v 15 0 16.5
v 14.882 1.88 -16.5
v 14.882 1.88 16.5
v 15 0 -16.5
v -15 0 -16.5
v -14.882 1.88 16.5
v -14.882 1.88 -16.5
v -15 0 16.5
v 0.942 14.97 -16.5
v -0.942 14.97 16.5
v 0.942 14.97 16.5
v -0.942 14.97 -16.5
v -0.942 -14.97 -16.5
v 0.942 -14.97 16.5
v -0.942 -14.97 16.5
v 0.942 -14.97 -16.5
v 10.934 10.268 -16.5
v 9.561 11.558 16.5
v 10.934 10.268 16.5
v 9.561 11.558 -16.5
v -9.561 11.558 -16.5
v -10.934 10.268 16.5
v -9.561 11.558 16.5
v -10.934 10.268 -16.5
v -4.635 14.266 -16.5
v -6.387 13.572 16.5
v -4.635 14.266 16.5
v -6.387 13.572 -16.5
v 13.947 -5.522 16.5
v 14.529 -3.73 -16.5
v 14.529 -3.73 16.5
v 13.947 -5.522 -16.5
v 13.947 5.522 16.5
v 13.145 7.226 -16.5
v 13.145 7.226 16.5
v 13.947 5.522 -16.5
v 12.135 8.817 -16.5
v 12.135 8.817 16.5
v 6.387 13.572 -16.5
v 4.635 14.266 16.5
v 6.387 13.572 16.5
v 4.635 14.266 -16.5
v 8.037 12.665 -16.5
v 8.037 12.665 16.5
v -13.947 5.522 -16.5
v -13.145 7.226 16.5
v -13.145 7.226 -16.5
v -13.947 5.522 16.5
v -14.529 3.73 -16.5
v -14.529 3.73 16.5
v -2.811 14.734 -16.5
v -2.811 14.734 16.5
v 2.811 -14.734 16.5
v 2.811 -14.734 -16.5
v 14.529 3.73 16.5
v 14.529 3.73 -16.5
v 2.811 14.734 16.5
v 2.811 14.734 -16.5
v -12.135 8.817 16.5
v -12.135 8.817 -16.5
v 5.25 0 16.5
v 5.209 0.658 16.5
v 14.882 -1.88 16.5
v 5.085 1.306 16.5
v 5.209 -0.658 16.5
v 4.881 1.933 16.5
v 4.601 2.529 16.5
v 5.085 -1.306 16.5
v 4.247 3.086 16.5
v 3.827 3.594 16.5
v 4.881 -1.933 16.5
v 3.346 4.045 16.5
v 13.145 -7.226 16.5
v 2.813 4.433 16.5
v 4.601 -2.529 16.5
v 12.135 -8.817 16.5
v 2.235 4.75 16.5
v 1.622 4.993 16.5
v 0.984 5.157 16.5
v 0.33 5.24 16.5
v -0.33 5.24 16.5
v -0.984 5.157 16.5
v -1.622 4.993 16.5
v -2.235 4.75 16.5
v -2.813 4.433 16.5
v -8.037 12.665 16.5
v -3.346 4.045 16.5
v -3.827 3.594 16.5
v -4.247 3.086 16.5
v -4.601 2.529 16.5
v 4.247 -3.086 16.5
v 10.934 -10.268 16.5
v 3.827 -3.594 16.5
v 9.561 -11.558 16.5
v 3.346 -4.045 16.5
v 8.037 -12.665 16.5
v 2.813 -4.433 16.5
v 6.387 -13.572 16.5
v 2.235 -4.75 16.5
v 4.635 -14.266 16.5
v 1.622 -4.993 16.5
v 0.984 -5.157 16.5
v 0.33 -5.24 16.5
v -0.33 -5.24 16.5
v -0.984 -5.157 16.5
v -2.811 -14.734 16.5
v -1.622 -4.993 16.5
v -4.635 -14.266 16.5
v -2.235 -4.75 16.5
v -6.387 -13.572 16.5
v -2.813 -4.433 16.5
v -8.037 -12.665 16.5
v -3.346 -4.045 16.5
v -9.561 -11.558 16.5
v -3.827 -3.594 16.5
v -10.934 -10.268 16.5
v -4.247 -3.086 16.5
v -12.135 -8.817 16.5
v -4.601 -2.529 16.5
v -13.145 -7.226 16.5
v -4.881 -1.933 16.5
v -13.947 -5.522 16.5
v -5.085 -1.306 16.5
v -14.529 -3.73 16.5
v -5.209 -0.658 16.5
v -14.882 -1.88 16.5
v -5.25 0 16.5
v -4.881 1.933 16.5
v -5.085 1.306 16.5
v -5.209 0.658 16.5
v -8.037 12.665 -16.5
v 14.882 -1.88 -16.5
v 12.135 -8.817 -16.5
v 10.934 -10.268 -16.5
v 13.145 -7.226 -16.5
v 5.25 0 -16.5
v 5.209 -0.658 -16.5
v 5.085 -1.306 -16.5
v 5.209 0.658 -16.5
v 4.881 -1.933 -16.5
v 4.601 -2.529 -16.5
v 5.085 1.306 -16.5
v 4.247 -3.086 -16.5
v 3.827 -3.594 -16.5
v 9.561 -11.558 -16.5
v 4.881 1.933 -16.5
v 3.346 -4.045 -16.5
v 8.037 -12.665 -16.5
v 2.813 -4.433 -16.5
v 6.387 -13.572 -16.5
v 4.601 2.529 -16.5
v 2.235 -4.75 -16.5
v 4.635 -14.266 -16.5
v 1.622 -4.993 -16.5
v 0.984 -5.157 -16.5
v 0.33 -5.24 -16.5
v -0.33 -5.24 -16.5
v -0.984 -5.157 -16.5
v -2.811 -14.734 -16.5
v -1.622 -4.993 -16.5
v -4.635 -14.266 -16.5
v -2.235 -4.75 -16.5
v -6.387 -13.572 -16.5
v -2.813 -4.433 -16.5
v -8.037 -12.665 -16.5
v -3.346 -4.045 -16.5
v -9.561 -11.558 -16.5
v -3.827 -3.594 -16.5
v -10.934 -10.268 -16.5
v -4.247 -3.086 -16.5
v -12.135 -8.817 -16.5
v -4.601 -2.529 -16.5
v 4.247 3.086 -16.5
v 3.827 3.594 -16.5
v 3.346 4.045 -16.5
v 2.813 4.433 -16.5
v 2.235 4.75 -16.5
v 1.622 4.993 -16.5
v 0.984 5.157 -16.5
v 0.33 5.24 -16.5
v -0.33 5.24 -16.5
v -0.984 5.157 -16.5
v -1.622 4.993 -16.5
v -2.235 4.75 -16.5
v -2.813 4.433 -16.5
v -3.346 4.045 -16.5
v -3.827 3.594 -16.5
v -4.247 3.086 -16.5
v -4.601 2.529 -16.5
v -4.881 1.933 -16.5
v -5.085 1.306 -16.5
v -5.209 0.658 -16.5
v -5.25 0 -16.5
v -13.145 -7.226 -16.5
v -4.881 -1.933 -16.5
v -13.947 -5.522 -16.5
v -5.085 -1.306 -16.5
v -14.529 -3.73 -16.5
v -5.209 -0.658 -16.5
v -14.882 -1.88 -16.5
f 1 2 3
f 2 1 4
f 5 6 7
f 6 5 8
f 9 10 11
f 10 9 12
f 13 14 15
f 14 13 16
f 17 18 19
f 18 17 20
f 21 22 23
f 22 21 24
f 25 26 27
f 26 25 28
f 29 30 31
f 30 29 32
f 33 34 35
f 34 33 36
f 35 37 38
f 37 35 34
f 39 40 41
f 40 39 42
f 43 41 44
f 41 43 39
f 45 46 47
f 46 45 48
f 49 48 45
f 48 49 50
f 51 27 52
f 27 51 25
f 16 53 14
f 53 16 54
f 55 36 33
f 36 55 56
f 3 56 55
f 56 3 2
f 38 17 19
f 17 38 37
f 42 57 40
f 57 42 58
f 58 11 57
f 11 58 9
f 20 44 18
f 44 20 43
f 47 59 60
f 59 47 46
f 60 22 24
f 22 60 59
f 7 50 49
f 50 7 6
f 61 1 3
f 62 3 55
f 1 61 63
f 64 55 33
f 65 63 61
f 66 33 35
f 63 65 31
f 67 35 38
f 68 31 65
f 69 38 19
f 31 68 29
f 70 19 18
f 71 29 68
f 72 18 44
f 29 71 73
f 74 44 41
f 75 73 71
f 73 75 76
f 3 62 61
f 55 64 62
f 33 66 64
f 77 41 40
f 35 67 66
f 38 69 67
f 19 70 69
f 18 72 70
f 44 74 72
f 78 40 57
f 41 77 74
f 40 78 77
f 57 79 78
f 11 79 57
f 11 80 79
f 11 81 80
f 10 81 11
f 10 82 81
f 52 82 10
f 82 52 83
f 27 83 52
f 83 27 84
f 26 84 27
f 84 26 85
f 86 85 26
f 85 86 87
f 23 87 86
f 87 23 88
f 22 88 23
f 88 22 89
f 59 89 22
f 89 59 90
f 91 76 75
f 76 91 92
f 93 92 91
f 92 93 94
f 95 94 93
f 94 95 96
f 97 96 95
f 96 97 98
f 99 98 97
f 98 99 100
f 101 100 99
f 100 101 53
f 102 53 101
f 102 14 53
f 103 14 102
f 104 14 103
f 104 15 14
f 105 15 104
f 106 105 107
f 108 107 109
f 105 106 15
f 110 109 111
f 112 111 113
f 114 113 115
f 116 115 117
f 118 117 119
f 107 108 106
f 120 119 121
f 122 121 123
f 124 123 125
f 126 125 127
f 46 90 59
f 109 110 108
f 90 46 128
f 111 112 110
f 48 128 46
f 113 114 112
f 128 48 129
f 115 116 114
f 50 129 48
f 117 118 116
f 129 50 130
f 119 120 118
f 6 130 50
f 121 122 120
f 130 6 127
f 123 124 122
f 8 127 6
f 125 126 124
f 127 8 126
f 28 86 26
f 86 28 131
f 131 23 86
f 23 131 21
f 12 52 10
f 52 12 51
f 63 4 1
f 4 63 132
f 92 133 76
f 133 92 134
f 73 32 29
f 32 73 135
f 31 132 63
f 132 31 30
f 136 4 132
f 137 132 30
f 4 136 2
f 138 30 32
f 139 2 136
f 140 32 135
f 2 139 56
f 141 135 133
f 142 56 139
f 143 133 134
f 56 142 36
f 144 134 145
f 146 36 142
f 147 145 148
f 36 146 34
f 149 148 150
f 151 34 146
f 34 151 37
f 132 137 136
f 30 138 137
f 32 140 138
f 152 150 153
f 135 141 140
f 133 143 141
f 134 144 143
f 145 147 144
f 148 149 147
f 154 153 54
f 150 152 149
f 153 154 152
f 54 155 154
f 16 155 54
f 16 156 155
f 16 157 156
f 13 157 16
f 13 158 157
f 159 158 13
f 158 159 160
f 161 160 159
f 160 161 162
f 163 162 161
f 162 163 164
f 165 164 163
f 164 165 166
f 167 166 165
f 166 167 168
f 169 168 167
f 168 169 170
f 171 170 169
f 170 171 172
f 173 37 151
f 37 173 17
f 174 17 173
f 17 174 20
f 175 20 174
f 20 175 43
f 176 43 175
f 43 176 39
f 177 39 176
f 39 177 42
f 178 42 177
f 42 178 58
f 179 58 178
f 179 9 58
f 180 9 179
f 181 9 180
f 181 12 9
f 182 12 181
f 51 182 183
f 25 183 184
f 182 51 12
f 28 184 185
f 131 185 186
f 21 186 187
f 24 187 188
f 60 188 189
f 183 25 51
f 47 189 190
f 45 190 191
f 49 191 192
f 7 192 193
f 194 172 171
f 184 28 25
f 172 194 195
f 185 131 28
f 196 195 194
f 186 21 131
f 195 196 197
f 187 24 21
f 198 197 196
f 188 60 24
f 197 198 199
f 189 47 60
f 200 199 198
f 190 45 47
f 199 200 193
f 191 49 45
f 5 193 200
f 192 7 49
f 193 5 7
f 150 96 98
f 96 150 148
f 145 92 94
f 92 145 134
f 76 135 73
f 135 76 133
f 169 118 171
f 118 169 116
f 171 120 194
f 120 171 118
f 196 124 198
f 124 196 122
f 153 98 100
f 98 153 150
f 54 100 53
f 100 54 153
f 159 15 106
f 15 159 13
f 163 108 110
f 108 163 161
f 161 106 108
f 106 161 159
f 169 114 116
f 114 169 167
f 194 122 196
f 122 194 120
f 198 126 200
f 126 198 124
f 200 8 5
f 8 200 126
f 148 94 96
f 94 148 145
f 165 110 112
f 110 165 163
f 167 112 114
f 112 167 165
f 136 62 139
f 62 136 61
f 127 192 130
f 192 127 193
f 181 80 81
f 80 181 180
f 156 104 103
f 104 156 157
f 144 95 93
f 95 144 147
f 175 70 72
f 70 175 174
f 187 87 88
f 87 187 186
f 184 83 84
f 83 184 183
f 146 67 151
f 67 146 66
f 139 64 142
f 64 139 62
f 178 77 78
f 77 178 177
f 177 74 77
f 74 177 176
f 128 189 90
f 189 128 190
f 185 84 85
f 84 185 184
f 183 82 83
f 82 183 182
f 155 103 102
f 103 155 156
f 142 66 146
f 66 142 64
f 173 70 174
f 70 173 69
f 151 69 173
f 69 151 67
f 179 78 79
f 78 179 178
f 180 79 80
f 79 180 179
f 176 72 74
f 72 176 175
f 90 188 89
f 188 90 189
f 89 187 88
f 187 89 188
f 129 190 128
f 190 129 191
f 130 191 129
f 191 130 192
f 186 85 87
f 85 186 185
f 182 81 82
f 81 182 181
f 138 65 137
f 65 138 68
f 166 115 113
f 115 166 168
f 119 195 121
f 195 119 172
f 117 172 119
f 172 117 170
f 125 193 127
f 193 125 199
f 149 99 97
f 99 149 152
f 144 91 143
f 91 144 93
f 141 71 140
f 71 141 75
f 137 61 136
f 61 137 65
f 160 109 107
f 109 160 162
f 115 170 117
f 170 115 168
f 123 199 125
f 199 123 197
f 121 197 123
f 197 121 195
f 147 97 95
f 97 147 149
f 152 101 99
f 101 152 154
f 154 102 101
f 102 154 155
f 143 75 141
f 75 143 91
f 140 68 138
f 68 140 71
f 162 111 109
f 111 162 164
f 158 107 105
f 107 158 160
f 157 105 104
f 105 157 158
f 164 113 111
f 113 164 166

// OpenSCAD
$fn = 50;


difference() {
	union() {
		translate(v = [0, 0, -16.5000000000]) {
			cylinder(h = 33, r = 15.0000000000);
		}
	}
	union() {
		translate(v = [0, 0, -100.0000000000]) {
			cylinder(h = 200, r = 5.2500000000);
		}
	}
}
